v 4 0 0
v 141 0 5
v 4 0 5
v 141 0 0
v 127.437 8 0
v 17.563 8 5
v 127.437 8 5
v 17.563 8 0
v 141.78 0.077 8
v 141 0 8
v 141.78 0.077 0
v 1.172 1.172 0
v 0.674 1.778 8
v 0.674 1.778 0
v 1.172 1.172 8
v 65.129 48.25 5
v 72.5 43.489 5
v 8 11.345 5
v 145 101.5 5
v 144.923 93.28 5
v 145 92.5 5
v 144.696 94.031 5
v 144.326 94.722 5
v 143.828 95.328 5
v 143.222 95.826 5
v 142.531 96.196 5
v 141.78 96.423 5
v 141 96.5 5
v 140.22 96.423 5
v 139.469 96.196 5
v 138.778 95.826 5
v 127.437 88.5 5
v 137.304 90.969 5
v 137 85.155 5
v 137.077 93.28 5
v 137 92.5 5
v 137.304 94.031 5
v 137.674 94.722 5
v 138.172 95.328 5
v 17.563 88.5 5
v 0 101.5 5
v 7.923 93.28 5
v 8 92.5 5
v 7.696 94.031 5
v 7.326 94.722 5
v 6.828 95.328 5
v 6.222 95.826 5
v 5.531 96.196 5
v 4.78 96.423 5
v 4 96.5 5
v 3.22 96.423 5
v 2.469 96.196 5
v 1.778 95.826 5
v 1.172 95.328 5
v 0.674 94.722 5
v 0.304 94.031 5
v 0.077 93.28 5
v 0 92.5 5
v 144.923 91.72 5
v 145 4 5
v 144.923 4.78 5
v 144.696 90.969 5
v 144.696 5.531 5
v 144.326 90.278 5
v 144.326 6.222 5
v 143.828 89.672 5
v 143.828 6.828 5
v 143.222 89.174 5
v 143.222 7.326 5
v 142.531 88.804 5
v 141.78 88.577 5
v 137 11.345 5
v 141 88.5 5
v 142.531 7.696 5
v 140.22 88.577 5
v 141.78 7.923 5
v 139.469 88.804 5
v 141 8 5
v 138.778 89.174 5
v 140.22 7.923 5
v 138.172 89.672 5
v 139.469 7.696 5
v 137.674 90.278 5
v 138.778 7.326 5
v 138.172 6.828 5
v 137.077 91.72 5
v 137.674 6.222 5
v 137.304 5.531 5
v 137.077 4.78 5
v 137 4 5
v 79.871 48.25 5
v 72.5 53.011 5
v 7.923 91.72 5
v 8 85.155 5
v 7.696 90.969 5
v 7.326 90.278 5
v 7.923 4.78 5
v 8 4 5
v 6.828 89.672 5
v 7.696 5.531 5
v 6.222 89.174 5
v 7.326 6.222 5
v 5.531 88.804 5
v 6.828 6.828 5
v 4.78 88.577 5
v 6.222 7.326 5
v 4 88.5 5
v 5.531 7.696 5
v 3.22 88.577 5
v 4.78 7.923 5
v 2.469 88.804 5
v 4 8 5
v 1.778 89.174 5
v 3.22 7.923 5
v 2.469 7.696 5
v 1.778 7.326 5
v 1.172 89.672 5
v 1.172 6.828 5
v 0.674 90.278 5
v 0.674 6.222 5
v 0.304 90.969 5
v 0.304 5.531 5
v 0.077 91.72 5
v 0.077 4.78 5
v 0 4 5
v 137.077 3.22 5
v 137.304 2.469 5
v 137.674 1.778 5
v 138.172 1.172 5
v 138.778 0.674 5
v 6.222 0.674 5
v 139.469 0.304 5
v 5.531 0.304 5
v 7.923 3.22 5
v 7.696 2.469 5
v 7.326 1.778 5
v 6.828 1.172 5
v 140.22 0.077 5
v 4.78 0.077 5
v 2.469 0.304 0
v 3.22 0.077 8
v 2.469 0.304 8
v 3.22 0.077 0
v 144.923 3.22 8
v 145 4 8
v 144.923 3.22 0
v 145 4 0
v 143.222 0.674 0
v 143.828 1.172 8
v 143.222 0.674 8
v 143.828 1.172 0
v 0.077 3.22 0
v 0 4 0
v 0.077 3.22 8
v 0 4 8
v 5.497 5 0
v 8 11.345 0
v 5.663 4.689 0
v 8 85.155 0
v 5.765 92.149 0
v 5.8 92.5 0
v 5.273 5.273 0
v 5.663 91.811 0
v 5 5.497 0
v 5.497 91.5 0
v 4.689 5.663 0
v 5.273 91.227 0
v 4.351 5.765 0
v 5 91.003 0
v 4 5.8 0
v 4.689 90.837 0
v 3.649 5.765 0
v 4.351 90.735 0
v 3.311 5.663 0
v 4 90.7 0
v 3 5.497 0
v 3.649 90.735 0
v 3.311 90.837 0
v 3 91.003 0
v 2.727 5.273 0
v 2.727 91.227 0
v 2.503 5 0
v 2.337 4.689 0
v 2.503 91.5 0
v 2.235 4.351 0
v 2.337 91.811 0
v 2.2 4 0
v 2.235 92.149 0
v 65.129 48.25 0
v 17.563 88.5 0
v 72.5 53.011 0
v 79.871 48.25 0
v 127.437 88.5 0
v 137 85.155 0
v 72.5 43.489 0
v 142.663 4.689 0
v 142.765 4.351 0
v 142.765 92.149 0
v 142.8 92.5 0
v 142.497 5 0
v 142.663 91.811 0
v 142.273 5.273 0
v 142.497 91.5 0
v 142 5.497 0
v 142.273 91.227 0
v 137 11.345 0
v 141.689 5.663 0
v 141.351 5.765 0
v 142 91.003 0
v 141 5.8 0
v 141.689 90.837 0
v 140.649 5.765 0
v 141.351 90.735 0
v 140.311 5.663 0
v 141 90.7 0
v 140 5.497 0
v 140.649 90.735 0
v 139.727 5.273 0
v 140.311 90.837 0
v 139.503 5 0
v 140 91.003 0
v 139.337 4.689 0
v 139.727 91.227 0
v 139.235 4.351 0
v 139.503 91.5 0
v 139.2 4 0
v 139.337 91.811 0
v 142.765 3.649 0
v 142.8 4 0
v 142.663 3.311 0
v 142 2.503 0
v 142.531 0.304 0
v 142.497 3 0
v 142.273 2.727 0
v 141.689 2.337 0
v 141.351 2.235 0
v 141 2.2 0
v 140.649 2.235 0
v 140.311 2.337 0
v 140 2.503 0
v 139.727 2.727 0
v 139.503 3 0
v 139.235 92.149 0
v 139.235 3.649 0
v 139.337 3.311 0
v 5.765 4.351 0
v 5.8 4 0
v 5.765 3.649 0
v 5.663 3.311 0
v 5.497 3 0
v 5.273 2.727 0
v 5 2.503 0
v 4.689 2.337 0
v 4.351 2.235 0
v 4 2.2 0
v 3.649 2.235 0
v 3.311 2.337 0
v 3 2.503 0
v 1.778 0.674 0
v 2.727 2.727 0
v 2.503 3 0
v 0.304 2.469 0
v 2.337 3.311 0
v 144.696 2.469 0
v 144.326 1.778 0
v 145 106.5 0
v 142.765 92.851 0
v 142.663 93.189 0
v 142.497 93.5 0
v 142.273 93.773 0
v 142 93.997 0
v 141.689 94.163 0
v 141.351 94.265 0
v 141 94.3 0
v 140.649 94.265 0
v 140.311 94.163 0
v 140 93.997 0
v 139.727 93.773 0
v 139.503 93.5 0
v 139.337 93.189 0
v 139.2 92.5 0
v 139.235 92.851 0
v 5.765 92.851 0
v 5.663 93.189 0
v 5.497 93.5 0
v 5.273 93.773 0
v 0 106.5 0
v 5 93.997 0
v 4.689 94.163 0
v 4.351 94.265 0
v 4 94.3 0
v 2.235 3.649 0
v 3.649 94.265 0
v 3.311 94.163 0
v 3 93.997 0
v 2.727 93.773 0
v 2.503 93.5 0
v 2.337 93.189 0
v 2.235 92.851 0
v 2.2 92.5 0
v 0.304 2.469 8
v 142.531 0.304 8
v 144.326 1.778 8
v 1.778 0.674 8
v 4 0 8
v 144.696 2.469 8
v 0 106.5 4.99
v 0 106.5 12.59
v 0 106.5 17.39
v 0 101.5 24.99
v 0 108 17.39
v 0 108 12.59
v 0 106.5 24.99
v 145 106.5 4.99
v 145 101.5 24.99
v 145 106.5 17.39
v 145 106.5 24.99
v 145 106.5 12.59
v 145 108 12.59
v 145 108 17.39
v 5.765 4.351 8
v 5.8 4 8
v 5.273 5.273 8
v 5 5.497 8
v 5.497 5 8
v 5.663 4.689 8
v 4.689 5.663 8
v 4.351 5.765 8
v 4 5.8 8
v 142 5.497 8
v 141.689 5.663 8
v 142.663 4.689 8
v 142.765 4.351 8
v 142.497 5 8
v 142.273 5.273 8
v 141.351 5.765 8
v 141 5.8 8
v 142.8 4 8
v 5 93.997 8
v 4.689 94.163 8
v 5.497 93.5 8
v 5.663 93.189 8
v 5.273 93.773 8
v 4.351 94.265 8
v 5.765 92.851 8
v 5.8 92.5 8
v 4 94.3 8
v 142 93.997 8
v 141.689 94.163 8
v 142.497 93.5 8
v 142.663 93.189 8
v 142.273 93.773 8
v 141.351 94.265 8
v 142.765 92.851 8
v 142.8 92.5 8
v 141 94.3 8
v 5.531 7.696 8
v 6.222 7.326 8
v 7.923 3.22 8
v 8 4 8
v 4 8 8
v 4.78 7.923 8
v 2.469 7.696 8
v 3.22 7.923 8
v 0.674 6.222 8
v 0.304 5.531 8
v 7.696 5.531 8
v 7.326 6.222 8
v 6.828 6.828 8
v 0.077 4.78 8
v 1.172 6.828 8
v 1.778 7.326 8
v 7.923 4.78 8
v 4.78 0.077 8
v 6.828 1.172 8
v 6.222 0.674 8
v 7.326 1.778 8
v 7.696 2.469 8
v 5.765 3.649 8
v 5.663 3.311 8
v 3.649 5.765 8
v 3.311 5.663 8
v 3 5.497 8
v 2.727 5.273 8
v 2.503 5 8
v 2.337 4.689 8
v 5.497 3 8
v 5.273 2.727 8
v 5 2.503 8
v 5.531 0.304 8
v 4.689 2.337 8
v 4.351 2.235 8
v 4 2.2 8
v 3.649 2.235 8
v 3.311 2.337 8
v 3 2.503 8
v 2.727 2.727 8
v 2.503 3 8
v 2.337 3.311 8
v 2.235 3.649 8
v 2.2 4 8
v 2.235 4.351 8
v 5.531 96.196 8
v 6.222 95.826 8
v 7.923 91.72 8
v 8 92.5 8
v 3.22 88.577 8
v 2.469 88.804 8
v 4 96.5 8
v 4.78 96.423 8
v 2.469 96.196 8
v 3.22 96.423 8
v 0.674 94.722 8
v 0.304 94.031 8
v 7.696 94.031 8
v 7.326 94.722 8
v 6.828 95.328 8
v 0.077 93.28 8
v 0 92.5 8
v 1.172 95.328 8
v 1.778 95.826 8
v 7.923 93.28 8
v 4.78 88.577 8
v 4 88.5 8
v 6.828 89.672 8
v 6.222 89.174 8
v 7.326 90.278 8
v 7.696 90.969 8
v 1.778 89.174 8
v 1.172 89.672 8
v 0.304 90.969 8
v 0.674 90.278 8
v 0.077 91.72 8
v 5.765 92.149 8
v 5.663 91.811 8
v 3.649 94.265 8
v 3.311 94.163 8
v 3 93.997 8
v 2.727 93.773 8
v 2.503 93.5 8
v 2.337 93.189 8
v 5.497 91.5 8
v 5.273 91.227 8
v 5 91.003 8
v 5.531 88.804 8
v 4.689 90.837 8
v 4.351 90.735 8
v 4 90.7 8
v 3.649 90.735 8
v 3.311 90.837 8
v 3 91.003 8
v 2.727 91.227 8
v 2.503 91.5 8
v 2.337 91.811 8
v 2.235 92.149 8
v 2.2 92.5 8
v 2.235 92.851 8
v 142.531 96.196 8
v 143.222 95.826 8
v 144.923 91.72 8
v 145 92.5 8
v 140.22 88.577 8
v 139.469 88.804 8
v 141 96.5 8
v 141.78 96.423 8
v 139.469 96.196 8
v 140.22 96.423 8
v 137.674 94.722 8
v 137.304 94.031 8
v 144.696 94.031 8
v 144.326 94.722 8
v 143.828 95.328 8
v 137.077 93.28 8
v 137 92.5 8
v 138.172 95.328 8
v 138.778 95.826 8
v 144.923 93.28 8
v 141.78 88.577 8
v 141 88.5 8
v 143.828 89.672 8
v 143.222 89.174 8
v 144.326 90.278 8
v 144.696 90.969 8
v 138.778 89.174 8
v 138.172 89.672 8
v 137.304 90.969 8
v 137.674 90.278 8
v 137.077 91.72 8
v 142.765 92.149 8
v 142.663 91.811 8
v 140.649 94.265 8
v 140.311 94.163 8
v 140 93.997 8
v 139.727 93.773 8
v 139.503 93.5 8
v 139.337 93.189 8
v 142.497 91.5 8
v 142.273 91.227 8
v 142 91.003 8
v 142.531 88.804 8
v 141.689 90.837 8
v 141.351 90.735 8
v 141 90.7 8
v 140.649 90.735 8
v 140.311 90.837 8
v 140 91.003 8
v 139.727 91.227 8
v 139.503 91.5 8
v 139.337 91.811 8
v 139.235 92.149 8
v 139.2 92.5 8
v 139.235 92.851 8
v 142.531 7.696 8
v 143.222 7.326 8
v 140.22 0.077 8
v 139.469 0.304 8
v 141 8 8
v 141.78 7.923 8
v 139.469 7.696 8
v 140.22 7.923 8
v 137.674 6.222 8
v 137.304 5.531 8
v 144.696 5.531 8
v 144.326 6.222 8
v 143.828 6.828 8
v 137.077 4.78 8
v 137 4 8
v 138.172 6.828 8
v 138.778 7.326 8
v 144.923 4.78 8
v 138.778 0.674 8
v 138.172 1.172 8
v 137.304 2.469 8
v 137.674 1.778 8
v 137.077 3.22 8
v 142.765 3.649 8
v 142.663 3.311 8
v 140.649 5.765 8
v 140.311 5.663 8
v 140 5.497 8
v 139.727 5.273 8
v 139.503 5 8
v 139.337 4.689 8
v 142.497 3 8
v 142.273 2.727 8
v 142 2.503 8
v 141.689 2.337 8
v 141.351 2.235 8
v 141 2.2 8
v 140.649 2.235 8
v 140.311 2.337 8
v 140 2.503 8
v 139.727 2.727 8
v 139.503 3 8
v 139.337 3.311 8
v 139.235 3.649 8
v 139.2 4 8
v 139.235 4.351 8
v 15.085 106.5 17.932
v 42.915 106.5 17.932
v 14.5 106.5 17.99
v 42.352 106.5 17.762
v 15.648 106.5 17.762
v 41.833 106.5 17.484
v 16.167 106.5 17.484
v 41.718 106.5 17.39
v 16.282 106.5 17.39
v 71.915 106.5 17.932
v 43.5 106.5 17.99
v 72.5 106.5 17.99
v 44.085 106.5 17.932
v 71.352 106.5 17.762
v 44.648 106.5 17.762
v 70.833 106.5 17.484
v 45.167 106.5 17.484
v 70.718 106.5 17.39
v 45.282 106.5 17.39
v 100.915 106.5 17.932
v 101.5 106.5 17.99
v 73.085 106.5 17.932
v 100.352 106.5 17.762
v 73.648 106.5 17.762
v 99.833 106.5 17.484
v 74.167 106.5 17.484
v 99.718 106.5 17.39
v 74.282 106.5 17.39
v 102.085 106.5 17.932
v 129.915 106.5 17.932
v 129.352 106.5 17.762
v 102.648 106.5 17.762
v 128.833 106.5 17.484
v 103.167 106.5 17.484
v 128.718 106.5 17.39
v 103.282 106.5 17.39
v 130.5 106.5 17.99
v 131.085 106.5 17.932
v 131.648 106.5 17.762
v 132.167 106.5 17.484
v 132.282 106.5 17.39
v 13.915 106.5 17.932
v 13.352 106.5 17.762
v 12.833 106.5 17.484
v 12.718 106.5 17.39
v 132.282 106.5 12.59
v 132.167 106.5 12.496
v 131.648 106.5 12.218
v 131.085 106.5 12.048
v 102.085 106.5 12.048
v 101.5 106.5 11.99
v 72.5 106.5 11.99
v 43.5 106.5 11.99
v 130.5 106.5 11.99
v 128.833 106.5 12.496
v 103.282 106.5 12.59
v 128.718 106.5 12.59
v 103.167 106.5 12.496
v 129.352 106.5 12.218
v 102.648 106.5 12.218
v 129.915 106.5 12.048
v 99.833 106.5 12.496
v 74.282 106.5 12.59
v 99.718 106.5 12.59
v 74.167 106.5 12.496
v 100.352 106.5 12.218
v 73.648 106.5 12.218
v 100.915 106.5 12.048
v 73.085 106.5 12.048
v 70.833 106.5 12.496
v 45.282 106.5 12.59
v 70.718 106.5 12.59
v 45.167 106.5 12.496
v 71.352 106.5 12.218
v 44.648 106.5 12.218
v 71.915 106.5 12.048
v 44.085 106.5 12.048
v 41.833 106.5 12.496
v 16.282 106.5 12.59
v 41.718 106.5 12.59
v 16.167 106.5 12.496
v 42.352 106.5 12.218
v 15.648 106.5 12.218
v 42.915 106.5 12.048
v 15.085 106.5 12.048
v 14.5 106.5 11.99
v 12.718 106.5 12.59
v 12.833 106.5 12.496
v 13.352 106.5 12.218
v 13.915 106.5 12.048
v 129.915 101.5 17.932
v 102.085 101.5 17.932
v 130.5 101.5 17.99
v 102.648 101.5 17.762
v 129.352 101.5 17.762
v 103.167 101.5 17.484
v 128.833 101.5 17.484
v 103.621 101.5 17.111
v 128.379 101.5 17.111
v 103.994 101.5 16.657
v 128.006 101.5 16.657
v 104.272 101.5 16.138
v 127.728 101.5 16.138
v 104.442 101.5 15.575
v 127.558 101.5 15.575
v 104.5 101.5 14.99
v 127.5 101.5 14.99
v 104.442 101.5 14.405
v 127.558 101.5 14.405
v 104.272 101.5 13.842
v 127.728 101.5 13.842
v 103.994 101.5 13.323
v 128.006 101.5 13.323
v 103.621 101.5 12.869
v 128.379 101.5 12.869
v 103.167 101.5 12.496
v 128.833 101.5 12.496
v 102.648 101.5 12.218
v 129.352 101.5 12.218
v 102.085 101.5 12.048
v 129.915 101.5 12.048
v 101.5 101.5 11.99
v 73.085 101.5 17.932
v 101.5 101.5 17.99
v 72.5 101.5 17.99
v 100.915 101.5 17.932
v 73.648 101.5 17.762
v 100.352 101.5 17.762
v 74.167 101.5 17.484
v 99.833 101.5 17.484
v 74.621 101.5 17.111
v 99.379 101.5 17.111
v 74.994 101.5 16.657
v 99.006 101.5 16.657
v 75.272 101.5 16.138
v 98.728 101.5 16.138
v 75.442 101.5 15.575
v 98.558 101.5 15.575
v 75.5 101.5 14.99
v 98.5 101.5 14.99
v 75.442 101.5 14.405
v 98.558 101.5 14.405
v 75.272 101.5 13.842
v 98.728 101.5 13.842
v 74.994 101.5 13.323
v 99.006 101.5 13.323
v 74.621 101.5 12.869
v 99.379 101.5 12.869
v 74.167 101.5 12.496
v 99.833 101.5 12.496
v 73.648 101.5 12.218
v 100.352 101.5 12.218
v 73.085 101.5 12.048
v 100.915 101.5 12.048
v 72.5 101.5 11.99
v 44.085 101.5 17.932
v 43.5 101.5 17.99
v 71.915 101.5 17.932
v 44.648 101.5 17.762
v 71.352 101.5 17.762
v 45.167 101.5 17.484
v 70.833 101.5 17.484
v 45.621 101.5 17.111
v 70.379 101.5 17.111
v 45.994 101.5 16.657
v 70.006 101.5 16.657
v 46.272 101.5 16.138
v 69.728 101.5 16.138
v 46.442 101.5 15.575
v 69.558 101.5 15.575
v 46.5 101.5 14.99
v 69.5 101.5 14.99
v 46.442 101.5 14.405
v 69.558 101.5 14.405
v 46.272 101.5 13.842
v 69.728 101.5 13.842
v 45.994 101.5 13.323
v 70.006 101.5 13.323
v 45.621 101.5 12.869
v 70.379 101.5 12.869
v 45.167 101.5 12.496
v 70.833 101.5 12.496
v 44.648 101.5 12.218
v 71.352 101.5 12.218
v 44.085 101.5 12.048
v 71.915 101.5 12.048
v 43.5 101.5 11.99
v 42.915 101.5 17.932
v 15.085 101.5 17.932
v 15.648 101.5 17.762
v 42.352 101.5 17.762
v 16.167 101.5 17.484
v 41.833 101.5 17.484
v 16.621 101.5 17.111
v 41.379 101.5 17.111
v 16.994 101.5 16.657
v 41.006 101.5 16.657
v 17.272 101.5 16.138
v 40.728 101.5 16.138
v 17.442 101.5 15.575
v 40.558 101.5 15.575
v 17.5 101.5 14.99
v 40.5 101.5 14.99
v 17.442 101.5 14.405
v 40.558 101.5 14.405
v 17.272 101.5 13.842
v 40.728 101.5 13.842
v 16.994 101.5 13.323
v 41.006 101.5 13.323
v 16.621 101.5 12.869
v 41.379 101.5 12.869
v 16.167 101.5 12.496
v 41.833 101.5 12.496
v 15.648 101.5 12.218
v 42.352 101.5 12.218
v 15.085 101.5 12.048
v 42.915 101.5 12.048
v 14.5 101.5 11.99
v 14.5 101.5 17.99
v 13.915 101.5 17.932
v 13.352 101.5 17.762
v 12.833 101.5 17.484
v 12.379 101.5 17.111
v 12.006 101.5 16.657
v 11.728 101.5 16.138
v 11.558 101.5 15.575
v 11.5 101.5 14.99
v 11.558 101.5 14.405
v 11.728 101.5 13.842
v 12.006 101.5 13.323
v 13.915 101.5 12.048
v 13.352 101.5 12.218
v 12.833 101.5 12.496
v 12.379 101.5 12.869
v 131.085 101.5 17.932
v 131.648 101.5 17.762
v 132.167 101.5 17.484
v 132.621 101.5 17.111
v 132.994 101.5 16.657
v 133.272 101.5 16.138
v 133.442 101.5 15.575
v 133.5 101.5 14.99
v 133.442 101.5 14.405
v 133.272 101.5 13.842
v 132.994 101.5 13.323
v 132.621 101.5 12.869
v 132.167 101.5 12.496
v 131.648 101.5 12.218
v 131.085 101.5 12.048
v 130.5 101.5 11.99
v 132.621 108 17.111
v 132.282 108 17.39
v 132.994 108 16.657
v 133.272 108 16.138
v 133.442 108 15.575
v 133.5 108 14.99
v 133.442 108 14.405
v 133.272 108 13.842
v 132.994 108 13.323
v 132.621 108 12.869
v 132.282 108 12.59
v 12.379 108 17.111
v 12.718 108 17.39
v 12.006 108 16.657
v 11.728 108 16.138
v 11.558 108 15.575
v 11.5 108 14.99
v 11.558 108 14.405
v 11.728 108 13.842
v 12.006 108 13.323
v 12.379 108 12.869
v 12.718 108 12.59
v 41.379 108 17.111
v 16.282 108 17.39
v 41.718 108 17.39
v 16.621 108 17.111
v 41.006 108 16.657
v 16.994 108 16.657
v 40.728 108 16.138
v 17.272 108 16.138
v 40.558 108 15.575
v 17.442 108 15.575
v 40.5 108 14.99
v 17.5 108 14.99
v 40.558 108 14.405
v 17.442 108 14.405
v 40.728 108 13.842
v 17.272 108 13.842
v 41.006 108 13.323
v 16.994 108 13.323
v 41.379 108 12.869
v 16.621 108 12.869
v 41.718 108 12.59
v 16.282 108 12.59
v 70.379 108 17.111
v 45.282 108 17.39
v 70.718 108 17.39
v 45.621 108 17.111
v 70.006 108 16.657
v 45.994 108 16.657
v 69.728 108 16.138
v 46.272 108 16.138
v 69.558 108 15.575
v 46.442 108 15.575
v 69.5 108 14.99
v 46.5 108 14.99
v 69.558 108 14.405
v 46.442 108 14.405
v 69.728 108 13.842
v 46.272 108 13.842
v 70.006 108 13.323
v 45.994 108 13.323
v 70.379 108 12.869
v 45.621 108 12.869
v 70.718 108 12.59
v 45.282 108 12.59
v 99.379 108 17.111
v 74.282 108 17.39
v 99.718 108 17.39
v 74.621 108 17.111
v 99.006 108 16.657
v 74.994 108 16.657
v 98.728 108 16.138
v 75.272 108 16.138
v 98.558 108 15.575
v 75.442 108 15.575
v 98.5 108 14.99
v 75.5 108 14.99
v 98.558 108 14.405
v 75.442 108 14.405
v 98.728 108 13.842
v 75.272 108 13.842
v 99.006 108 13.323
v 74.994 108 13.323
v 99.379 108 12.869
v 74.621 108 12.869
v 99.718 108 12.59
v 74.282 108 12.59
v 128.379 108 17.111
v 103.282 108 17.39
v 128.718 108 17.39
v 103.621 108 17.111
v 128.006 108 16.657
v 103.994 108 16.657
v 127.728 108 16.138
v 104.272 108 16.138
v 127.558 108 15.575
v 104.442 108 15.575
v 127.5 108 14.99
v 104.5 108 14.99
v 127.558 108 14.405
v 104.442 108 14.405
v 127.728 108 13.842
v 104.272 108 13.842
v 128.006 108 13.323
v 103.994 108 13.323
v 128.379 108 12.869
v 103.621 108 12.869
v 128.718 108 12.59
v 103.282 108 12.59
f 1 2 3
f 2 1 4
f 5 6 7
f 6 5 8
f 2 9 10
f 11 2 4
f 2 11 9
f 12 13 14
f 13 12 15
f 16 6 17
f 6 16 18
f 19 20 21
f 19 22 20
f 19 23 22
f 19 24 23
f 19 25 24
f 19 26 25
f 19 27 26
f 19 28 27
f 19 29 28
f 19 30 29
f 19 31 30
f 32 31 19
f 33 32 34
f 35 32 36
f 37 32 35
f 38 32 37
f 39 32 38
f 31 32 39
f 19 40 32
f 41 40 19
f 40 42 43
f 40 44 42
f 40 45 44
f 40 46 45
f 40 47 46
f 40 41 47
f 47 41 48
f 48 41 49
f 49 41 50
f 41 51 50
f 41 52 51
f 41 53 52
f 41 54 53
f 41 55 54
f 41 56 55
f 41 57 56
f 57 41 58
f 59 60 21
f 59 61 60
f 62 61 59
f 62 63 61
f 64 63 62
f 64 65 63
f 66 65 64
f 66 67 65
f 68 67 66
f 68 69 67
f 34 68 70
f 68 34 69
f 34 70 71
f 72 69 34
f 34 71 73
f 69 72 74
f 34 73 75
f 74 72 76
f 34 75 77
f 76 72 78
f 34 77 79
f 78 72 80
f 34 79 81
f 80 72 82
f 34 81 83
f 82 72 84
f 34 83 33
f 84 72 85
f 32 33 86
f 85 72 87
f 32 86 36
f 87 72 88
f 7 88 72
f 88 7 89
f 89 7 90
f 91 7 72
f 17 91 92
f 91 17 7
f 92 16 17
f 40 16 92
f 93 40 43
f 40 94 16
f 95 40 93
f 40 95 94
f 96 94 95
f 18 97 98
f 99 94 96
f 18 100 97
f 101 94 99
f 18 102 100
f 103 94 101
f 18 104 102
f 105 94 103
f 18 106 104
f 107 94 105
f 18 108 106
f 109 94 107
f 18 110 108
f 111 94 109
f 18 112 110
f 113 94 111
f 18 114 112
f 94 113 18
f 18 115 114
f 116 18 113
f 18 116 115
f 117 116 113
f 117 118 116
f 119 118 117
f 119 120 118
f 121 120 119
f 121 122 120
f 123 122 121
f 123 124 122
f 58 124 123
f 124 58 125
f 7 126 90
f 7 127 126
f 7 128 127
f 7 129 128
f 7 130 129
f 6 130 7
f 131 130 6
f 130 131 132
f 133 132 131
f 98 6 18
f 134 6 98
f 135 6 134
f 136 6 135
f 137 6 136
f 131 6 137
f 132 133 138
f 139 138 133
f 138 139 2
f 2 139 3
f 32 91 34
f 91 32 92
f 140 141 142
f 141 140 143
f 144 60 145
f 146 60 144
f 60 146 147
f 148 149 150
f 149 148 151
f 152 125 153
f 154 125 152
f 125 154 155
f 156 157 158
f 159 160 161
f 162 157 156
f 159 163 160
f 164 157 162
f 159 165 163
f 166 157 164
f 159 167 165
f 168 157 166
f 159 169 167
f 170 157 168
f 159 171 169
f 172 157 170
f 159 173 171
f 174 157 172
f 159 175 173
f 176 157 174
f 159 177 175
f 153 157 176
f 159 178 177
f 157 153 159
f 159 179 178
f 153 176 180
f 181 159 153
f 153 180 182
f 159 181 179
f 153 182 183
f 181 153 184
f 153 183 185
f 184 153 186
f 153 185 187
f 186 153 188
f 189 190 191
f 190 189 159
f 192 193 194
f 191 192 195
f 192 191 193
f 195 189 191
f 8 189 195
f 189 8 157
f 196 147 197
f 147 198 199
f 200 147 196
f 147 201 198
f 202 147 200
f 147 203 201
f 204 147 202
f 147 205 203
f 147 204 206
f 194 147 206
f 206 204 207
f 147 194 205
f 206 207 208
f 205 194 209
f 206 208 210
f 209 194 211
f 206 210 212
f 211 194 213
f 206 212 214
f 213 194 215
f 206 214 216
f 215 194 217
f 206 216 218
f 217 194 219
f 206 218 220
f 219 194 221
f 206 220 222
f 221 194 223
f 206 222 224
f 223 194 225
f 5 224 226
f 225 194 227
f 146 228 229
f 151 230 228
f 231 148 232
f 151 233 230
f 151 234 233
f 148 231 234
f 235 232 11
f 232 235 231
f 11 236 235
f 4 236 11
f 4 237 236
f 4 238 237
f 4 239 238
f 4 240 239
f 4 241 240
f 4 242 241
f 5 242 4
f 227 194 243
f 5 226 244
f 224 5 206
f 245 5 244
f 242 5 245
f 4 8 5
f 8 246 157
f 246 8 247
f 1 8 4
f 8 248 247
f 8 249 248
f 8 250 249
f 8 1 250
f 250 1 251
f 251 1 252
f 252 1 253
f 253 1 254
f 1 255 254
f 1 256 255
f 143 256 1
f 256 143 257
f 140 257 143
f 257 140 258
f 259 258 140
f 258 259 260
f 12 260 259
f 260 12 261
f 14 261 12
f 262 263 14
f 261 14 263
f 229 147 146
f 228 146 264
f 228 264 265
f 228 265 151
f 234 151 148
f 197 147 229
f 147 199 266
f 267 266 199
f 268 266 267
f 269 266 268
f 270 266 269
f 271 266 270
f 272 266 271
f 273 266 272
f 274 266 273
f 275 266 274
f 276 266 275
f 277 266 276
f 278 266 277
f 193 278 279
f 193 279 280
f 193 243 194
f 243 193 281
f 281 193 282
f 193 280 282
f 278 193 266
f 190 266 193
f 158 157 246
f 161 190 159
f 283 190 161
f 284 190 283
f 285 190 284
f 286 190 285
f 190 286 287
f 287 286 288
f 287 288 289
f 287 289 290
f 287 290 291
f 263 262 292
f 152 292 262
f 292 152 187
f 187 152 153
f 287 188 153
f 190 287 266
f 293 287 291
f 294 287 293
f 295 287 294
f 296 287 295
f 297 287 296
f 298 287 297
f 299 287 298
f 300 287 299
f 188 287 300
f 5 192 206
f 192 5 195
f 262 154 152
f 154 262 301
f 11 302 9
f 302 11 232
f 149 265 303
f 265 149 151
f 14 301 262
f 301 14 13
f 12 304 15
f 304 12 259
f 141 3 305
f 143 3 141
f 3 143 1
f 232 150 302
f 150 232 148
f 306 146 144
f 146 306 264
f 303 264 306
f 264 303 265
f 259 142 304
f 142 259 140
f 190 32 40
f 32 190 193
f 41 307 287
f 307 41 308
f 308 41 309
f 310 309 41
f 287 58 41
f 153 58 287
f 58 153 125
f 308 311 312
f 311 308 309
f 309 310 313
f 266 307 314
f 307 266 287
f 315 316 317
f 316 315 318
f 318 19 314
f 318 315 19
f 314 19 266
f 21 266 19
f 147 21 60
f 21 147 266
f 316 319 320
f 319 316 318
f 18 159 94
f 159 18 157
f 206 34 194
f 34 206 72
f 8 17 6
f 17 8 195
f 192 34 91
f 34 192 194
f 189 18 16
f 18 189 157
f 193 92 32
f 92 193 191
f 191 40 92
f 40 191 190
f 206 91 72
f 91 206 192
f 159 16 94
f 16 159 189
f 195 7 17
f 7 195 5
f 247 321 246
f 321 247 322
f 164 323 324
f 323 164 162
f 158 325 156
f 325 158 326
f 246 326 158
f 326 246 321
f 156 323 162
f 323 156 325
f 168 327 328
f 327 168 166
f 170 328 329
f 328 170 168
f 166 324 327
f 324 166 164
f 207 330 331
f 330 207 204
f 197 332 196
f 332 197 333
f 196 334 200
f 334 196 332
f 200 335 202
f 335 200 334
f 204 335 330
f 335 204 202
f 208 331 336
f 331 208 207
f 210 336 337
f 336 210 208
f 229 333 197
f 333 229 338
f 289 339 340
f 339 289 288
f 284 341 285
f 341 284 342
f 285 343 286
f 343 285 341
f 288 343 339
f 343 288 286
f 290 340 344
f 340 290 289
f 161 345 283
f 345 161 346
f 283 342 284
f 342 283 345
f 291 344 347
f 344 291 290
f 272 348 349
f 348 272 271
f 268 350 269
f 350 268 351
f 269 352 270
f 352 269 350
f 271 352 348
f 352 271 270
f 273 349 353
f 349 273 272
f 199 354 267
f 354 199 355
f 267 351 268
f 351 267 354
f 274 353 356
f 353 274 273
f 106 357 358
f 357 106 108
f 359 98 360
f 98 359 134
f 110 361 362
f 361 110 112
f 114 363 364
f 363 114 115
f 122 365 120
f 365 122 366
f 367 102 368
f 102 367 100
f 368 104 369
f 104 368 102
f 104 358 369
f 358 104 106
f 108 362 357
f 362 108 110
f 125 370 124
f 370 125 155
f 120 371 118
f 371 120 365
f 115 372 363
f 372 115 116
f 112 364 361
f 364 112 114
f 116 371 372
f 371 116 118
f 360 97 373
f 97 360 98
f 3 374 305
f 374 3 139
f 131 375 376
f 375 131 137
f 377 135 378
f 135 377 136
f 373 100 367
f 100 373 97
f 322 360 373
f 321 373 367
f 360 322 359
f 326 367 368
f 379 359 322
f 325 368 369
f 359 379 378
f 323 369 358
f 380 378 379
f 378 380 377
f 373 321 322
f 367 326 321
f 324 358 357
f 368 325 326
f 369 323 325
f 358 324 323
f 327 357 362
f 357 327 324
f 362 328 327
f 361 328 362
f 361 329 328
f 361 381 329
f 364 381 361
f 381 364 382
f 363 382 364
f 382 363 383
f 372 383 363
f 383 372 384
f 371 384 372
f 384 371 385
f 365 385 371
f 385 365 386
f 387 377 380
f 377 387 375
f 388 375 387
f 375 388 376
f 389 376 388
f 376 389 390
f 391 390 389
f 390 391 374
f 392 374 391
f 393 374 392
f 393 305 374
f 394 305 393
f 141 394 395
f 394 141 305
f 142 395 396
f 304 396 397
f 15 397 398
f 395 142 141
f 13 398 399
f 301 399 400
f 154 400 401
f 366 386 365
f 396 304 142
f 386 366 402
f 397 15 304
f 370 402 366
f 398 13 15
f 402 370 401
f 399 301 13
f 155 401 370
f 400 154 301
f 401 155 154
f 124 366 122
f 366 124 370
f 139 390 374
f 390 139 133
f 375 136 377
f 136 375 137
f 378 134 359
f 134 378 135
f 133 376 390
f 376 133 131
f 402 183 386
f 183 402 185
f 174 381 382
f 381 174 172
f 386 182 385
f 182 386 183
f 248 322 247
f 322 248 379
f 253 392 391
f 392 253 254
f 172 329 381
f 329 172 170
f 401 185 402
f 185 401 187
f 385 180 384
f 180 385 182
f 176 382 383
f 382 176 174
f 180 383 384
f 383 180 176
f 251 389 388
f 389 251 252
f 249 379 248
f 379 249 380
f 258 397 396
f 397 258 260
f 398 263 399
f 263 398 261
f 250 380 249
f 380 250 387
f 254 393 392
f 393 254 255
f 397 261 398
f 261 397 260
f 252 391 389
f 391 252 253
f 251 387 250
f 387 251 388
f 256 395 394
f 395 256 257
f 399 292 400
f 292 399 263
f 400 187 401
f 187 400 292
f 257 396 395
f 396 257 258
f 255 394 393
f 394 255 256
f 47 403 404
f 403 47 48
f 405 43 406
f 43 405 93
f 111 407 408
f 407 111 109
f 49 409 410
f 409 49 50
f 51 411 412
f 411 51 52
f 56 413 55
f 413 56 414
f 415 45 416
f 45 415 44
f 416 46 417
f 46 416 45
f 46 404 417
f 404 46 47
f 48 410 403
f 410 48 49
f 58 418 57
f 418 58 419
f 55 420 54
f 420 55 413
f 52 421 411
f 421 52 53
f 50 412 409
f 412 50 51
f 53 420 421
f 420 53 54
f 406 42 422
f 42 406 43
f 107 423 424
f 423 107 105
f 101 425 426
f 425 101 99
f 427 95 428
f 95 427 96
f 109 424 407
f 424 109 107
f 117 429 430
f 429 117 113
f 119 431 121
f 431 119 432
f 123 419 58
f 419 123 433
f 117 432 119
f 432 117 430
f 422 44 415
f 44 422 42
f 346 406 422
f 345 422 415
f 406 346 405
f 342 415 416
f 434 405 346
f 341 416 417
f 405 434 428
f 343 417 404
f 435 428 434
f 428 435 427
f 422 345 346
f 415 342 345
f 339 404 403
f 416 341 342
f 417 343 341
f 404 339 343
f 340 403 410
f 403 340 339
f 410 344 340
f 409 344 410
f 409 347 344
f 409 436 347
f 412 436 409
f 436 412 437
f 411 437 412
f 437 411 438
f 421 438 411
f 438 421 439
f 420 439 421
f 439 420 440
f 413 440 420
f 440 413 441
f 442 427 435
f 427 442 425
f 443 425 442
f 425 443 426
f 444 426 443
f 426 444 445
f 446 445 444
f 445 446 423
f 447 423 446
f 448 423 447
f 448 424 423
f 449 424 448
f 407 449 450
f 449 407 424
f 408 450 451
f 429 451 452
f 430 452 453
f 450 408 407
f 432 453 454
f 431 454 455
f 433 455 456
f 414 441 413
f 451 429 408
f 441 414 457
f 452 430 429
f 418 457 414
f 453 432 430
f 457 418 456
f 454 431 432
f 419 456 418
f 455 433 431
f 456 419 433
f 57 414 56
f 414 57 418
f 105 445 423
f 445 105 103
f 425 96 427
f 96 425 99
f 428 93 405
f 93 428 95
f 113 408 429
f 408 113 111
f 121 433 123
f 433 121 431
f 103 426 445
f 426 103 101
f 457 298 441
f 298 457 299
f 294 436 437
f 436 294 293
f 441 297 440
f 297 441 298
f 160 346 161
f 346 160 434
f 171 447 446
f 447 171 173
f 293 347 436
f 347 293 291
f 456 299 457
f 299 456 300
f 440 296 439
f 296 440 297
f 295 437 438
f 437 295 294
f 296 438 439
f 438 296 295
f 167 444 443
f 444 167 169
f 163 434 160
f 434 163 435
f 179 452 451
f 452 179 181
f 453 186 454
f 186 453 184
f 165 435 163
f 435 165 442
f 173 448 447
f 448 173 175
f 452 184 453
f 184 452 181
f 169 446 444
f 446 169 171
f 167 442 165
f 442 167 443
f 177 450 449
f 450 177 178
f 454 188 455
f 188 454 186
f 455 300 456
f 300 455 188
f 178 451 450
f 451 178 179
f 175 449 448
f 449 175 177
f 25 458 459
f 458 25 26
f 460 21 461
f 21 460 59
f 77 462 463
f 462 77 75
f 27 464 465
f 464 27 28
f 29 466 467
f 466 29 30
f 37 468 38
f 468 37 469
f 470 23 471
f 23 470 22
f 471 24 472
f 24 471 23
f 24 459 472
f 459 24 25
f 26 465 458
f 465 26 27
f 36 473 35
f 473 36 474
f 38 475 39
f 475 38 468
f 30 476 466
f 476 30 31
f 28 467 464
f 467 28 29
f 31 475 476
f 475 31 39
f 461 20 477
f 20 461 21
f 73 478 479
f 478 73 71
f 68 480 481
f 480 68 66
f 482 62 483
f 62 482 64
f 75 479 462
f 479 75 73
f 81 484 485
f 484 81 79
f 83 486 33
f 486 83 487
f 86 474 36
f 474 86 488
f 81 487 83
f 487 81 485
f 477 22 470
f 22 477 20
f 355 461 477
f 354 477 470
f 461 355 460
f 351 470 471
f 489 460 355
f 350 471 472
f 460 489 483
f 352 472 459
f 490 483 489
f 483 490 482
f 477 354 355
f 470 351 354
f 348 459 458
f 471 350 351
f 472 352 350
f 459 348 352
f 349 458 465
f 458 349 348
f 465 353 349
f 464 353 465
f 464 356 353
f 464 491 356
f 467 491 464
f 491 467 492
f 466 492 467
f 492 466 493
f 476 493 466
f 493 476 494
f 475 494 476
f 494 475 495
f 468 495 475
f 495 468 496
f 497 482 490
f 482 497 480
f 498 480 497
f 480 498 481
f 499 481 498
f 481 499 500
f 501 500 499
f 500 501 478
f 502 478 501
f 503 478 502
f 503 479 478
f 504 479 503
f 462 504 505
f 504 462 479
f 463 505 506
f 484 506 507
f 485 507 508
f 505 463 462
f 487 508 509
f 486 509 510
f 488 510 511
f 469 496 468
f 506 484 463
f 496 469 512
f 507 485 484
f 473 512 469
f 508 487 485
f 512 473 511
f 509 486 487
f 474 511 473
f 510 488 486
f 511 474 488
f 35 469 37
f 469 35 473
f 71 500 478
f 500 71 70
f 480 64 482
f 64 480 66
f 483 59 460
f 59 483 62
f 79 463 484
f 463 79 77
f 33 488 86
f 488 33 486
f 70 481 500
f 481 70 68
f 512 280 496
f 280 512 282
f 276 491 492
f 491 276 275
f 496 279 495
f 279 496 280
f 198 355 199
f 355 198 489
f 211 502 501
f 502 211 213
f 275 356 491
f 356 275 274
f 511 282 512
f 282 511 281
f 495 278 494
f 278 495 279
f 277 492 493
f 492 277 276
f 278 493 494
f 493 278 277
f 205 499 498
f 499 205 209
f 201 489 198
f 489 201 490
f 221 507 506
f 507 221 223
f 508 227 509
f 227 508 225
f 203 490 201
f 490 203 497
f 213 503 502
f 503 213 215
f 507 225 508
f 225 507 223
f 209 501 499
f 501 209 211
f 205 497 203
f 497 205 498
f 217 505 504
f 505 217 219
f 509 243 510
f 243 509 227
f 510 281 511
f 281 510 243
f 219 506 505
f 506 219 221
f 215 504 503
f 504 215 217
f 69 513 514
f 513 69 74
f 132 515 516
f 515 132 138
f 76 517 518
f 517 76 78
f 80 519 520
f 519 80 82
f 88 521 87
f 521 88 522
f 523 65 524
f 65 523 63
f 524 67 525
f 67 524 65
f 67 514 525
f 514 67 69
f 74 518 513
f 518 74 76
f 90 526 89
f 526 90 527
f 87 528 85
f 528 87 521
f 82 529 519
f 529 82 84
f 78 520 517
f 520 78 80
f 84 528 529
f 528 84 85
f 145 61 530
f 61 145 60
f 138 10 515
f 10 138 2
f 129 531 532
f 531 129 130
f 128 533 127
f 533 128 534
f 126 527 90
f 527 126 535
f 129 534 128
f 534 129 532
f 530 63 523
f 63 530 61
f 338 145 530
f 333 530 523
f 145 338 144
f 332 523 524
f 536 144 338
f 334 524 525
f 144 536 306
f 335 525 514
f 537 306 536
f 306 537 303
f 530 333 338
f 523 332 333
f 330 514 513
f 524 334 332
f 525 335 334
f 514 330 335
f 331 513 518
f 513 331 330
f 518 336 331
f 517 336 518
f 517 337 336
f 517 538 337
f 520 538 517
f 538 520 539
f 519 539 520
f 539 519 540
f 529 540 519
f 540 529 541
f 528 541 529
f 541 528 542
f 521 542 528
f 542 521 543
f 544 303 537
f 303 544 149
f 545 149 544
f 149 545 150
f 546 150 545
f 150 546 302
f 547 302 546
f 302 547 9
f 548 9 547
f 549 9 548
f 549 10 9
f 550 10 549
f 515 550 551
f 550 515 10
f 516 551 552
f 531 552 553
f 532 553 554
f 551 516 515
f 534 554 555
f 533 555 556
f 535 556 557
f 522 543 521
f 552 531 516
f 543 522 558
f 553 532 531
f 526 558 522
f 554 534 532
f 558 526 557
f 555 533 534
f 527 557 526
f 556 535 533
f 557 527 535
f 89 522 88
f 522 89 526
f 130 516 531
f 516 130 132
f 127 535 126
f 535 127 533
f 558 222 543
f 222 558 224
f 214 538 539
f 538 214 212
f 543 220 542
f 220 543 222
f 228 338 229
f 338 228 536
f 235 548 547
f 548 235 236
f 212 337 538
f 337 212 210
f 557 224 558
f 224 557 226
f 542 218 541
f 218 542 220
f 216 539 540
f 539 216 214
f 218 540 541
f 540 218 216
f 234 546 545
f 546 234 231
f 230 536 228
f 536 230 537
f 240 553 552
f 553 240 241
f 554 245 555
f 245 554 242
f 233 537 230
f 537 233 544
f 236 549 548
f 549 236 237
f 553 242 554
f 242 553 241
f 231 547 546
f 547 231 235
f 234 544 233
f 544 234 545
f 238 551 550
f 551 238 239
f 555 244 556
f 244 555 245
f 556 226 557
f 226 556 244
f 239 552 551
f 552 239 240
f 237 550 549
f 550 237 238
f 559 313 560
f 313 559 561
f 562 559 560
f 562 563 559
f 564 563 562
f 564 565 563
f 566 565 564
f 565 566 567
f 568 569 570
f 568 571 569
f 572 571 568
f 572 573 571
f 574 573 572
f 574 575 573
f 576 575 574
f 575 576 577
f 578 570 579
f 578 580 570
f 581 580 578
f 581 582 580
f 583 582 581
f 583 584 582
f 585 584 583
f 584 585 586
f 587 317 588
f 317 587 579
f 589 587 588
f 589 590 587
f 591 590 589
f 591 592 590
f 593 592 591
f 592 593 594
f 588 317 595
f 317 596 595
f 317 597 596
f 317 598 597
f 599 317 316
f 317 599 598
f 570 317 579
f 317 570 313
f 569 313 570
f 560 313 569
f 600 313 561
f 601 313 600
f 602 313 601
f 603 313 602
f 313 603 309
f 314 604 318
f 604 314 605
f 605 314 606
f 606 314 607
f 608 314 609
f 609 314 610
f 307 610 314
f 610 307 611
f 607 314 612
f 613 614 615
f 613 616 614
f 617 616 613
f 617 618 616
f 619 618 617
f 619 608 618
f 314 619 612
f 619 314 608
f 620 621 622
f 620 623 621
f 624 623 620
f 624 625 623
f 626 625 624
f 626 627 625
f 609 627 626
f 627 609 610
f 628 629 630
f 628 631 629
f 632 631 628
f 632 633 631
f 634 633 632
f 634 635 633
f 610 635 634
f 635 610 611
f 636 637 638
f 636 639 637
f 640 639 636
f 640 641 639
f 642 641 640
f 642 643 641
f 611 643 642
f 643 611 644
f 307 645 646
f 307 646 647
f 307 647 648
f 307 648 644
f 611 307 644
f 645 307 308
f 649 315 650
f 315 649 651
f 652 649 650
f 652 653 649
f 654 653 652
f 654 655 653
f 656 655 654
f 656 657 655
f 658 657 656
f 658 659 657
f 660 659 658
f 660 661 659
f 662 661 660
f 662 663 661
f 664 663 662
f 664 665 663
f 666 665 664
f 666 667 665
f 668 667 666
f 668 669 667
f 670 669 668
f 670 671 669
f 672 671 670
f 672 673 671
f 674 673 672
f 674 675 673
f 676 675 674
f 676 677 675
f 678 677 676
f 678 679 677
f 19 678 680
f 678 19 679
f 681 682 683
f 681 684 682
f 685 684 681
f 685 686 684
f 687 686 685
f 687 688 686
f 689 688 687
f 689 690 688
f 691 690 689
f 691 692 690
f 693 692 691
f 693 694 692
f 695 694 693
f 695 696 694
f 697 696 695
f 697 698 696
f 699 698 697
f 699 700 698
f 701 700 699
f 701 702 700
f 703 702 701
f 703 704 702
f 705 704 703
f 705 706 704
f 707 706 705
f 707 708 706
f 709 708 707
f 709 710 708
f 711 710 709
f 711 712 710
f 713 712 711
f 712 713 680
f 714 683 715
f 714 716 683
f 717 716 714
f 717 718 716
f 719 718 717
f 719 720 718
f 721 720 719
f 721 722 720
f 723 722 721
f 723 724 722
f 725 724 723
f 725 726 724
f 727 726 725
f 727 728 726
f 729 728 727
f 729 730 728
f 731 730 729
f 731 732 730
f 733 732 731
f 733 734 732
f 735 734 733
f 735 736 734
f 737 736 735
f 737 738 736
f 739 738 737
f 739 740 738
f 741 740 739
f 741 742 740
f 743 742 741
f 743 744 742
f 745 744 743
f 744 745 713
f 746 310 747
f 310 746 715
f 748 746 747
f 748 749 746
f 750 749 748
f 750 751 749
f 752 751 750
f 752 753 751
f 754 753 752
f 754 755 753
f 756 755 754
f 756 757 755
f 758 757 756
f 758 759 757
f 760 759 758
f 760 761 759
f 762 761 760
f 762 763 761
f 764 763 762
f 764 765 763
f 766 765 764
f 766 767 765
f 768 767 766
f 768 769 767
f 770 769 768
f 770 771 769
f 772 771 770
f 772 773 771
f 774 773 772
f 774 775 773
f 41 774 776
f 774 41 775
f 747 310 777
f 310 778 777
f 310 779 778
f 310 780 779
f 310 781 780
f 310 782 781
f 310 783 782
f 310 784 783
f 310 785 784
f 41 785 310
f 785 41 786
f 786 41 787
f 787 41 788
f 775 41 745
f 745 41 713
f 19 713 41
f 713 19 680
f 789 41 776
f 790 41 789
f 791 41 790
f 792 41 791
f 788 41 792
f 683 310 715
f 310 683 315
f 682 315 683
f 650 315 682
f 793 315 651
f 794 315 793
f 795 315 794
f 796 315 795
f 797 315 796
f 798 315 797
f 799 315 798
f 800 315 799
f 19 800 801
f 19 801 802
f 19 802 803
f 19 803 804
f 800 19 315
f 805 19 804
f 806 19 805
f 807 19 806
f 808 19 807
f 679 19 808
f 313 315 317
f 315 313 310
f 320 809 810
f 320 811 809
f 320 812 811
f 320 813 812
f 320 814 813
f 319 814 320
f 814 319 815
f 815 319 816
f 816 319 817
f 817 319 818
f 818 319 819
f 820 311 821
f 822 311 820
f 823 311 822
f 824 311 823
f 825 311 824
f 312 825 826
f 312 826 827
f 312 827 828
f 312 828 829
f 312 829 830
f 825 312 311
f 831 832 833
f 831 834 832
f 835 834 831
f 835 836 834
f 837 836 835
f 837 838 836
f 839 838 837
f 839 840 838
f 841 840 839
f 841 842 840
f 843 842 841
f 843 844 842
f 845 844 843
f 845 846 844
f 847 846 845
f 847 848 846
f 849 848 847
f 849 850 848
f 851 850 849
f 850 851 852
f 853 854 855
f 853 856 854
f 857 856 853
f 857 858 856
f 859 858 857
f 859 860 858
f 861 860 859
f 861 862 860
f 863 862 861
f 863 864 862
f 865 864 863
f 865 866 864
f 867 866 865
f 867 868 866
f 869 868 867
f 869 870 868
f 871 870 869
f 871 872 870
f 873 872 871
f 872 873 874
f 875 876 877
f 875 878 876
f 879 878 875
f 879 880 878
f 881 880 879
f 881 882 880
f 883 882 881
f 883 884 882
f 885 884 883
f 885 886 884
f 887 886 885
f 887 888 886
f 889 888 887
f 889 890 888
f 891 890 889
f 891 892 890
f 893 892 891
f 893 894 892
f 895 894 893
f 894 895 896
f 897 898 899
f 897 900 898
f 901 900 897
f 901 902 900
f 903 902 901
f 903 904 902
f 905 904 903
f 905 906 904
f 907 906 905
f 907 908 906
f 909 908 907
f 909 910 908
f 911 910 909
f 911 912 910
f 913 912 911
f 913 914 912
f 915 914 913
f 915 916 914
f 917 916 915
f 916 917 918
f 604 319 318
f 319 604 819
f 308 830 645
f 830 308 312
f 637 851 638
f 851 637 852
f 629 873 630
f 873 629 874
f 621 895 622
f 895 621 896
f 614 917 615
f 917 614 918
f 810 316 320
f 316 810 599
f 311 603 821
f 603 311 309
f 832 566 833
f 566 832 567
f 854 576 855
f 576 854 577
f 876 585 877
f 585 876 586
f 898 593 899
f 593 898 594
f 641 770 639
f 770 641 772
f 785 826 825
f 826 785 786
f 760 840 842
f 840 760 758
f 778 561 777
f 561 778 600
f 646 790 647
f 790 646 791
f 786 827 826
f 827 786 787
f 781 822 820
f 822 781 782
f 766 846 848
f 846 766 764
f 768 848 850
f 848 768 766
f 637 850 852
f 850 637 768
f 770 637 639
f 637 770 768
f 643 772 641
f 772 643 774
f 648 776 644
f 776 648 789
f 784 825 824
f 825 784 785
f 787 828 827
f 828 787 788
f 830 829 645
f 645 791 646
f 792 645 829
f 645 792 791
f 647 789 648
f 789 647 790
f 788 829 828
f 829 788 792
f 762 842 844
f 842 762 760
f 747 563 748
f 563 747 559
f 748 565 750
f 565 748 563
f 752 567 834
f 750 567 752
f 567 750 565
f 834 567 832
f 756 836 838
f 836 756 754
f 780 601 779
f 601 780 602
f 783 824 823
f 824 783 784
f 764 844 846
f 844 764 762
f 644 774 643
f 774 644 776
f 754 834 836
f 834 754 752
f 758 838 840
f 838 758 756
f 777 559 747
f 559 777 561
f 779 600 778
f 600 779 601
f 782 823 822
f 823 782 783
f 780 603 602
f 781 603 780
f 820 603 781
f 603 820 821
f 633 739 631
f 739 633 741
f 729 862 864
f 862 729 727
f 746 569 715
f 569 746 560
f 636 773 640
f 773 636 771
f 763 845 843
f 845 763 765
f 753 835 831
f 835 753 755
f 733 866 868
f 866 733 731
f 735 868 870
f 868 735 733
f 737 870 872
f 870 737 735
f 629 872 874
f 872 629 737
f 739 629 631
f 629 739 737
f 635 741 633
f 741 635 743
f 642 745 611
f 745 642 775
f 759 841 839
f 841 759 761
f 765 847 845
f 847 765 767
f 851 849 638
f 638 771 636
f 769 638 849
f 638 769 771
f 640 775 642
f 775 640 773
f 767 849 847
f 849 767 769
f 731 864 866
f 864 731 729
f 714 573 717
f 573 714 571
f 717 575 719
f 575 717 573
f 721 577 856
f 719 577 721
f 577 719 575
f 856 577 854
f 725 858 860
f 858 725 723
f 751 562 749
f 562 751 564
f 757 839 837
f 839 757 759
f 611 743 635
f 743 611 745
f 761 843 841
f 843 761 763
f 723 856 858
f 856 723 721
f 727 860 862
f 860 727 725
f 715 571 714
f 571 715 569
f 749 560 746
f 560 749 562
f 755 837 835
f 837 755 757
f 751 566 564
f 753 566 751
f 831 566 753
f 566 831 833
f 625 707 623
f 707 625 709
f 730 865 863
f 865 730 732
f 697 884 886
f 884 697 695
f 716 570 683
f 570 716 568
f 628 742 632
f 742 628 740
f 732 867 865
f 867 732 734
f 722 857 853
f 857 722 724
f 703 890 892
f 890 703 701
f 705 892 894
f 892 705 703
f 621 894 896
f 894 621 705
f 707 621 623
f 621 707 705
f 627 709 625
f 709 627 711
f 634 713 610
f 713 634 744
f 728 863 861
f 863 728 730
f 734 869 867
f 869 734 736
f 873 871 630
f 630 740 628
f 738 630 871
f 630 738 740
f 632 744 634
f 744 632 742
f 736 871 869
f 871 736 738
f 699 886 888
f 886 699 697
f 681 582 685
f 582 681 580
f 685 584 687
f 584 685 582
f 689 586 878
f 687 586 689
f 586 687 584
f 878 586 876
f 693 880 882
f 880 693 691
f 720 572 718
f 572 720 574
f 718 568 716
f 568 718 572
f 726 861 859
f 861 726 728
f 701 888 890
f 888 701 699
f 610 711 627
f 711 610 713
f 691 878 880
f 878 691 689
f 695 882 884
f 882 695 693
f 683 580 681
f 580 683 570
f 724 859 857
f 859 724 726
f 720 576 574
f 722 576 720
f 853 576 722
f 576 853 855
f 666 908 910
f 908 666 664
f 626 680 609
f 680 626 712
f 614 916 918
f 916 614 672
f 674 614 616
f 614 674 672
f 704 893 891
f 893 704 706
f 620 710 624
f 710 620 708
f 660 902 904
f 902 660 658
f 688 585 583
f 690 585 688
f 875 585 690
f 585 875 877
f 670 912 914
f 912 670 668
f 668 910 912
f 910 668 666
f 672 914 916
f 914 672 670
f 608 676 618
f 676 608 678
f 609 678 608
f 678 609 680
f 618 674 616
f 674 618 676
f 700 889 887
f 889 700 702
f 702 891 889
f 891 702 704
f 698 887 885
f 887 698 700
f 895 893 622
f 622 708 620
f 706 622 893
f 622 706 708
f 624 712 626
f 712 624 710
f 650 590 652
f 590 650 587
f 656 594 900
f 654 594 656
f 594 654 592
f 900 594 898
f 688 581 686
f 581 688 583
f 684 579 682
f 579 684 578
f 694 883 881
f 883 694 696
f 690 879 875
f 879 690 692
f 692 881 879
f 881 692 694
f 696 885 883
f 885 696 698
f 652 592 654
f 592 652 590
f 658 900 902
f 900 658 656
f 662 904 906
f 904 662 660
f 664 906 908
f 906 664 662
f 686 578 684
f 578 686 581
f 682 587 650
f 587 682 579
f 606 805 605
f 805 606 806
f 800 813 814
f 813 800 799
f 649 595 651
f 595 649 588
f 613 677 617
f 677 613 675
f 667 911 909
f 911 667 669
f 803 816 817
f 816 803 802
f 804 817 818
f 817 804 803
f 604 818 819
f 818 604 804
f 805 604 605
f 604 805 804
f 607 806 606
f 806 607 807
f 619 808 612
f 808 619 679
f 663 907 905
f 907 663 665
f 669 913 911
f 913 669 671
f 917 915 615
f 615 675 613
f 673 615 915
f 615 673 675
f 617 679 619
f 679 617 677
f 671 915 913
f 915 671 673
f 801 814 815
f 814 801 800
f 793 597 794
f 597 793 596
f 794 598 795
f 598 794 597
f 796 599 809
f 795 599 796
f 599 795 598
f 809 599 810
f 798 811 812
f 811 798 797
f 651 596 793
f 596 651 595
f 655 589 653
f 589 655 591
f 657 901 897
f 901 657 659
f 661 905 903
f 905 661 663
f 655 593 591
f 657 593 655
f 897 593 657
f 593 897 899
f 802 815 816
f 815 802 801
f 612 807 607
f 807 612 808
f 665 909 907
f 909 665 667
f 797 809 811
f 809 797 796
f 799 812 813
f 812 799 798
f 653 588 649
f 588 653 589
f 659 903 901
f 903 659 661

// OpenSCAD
board_x = 145;
board_y = 96.5;
board_spacing = 5;
hole_offset = 4;
hole_diameter = 3.6;
strut_thickness = 5;
standoff_height = 3;
slack = 0.01;

extrusion_width = 20;
extrusion_slot = 4.8;
extrusion_slot_depth = 1.5;
extrusion_hole_diameter = 6;

$fn = 32;

module standoff(height = strut_thickness + standoff_height) {
    difference() {
        cylinder(d = 2 * hole_offset, h = height);
        translate([0, 0, -slack]) cylinder(d = hole_diameter, h = height + 2 * slack);
    }
}

module standoff_cube(height = strut_thickness + standoff_height) {
    difference() {
        translate([0, 0, height/2]) cube(size = [2 * hole_offset, 2 * hole_offset, height], center = true);
        translate([0, 0, -slack]) cylinder(d = hole_diameter, h = height + 2 * slack);
    }
}
    
module base_plate() {
    difference() {
        union() {
            // lower x-strut
            hull() {
                translate([hole_offset, hole_offset, 0]) standoff(height = strut_thickness);
                translate([board_x - hole_offset, hole_offset, 0]) standoff(height = strut_thickness);
            }
            
            // upper x-strut & spacer
            hull() {
                translate([hole_offset, board_y - hole_offset, 0]) standoff_cube(height = strut_thickness);
                translate([board_x - hole_offset, board_y - hole_offset, 0]) standoff_cube(height = strut_thickness);
                translate([0, board_y + strut_thickness, 0]) cube([1, board_spacing, strut_thickness]);
                translate([board_x - 1, board_y + strut_thickness, 0]) cube([1, board_spacing, strut_thickness]);
            }
            
            // left y-strut
            hull() {
                translate([hole_offset, hole_offset, 0]) standoff(height = strut_thickness);
                translate([hole_offset, board_y - hole_offset, 0]) standoff(height = strut_thickness);
            }

            // right y-strut
            hull() {
                translate([board_x - hole_offset, hole_offset, 0]) standoff(height = strut_thickness);
                translate([board_x - hole_offset, board_y - hole_offset, 0]) standoff(height = strut_thickness);
            }
            
            // bottom-left to top-right crossbrace
            hull() {
                translate([hole_offset, hole_offset, 0]) standoff(height = strut_thickness);
                translate([board_x - hole_offset, board_y - hole_offset, 0]) standoff(height = strut_thickness);
            }
            
            // top-left to bottom-right crossbrace
            hull() {
                translate([hole_offset, board_y - hole_offset, 0]) standoff(height = strut_thickness);
                translate([board_x - hole_offset, hole_offset, 0]) standoff(height = strut_thickness);
            }
        }
        
        // mounting holes
        translate([hole_offset, hole_offset, -slack]) cylinder(d = hole_diameter, h = strut_thickness + 2 * slack);
        translate([board_x - hole_offset, hole_offset, -slack]) cylinder(d = hole_diameter, h = strut_thickness + 2 * slack);
        translate([hole_offset, board_y - hole_offset, -slack]) cylinder(d = hole_diameter, h = strut_thickness + 2 * slack);
        translate([board_x - hole_offset, board_y - hole_offset, -slack]) cylinder(d = hole_diameter, h = strut_thickness + 2 * slack);
    }
}

module extrusion_rail() {
    slot_offset = (extrusion_width - extrusion_slot) / 2;
    hole_offset = extrusion_width / 2;
    hole_spacing = board_x / 5;

    difference() {
        union() {
            // rail & slot
            cube([board_x, extrusion_width, strut_thickness]);
            translate([0, slot_offset, strut_thickness]) cube([board_x, extrusion_slot, extrusion_slot_depth]);
        }
        // screw holes
        for(i = [0:4]) {
            translate([(hole_spacing / 2) + i * hole_spacing, hole_offset, -slack]) cylinder(d = extrusion_hole_diameter, h = strut_thickness + extrusion_slot_depth + 2 * slack);
        }
    }
}

module makerbase_sbase_mount() {
    base_plate();
    
    // raised standoffs
    translate([hole_offset, hole_offset, 0]) standoff();
    translate([hole_offset, board_y - hole_offset, 0]) standoff();
    translate([board_x - hole_offset, board_y - hole_offset, 0]) standoff();
    translate([board_x - hole_offset, hole_offset, 0]) standoff();
    
    // attach the rail (and sink it into the base_plate slightly, otherwise the resulting object
    // is not manifold and may cause problems)
    translate([0, board_y + board_spacing, extrusion_width + strut_thickness - slack]) rotate([-90, 0, 0]) extrusion_rail();
}

makerbase_sbase_mount();
